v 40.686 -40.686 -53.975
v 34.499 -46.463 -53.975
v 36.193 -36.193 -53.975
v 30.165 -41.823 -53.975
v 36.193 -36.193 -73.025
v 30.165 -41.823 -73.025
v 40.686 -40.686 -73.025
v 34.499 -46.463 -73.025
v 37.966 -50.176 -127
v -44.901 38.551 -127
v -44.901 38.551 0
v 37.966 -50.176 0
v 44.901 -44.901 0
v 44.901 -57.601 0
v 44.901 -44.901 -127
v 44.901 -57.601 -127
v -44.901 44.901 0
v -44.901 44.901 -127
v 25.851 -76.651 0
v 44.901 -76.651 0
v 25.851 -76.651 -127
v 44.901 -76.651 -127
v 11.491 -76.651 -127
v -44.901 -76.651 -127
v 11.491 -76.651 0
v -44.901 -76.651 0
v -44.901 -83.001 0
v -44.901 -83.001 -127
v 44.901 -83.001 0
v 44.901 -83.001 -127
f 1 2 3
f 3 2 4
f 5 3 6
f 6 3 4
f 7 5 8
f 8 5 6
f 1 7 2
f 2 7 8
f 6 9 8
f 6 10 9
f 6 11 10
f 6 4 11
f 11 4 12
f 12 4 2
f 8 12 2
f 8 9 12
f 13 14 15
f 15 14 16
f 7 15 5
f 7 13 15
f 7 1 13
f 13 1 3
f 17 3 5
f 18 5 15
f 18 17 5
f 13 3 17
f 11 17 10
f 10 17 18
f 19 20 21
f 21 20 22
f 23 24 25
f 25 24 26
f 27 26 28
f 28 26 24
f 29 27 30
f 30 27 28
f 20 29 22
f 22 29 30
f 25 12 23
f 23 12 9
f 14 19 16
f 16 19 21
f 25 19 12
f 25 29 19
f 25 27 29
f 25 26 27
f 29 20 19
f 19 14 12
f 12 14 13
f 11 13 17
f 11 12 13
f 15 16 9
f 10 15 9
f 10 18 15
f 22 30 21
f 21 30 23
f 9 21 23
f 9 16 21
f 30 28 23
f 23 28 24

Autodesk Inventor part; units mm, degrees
ref_plane "YZ Plane" through (0, 0, 0) normal (1, 0, 0) x (0, 1, 0)
ref_plane "XZ Plane" through (0, 0, 0) normal (0, 1, 0) x (-1, 0, 0)
ref_plane "XY Plane" through (0, 0, 0) normal (0, 0, 1) x (1, 0, 0)
sketch "Sketch1" plane through (0, 0, 0) normal (0, 0, 1) x (1, 0, 0)
  line L0 (-44.9013, 44.9013) -> (44.9013, -44.9013)
  line L1 (-44.9013, 44.9013) -> (82.0987, 44.9013) construction
  line L2 (-44.9013, 44.9013) -> (-44.9013, 38.5513)
  line L3 (44.9013, -44.9013) -> (44.9013, -57.6013)
  line L4 (44.9013, -57.6013) -> (-44.9013, 38.5513)
  line L5 (44.9013, -57.6013) -> (44.9013, -76.6513) construction
  line L6 (-44.9013, 38.5513) -> (-44.9013, -76.6513) construction
  line L7 (-44.9013, 38.5513) -> (70.3013, 38.5513) construction
  line L8 (-44.9013, -76.6513) -> (44.9013, -76.6513)
  line L9 (-44.9013, -76.6513) -> (-44.9013, -83.0013)
  line L10 (44.9013, -76.6513) -> (44.9013, -83.0013)
  line L11 (44.9013, -76.6513) -> (51.2513, -76.6513) construction
  line L12 (-44.9013, -83.0013) -> (44.9013, -83.0013)
  line L13 (44.9013, -57.6013) -> (25.8513, -76.6513)
  line L14 (44.9013, -57.6013) -> (71.842, -57.6013) construction
  line L15 (44.9013, -57.6013) -> (37.9664, -50.1761) construction
  line L16 (37.9664, -50.1761) -> (11.4912, -76.6513)
  line L17 (37.9664, -50.1761) -> (75.408, -50.1761) construction
  point P0 (0, 0)
  point P1 (0, 0)
  dimension "d0" = 127
  dimension "d1" = 45
  dimension "d2" = 6.35
  dimension "d4" = 19.05
  dimension "d5" = 12.7
  dimension "d6" = 90
  dimension "d7" = 6.35
  dimension "d8" = 90
  dimension "d9" = 135
  dimension "d10" = 10.16
  dimension "d11" = 135
extrude "Extrusion1" add sketch "Sketch1" against normal blind 127
sketch "Sketch4" plane through (37.9664, -50.1761, -127) normal (-0.7308, -0.6826, 0) x (0, 0, 1)
  line L0 (0, -1.2778) -> (0, 0) projected
  line L1 (127, 0) -> (127, -1.2778) projected
  line L2 (0, 0) -> (127, 0) construction
  line L3 (127, 0) -> (0, 0) projected
  line L4 (63.5, 0) -> (63.5, 5.08) construction
  line L5 (63.5, 0) -> (68.58, 0) construction
  line L6 (53.975, 11.43) -> (73.025, 11.43)
  line L7 (73.025, 11.43) -> (73.025, 5.08)
  line L8 (73.025, 5.08) -> (53.975, 5.08)
  line L9 (53.975, 5.08) -> (53.975, 11.43)
  point P0 (127, 62.5845)
  dimension "d22" = 5.08
  dimension "d23" = 90
  dimension "d24" = 19.05
  dimension "d25" = 6.35
extrude "Extrusion4" cut sketch "Sketch4" against normal up to next
properties part number "proto_1b"
